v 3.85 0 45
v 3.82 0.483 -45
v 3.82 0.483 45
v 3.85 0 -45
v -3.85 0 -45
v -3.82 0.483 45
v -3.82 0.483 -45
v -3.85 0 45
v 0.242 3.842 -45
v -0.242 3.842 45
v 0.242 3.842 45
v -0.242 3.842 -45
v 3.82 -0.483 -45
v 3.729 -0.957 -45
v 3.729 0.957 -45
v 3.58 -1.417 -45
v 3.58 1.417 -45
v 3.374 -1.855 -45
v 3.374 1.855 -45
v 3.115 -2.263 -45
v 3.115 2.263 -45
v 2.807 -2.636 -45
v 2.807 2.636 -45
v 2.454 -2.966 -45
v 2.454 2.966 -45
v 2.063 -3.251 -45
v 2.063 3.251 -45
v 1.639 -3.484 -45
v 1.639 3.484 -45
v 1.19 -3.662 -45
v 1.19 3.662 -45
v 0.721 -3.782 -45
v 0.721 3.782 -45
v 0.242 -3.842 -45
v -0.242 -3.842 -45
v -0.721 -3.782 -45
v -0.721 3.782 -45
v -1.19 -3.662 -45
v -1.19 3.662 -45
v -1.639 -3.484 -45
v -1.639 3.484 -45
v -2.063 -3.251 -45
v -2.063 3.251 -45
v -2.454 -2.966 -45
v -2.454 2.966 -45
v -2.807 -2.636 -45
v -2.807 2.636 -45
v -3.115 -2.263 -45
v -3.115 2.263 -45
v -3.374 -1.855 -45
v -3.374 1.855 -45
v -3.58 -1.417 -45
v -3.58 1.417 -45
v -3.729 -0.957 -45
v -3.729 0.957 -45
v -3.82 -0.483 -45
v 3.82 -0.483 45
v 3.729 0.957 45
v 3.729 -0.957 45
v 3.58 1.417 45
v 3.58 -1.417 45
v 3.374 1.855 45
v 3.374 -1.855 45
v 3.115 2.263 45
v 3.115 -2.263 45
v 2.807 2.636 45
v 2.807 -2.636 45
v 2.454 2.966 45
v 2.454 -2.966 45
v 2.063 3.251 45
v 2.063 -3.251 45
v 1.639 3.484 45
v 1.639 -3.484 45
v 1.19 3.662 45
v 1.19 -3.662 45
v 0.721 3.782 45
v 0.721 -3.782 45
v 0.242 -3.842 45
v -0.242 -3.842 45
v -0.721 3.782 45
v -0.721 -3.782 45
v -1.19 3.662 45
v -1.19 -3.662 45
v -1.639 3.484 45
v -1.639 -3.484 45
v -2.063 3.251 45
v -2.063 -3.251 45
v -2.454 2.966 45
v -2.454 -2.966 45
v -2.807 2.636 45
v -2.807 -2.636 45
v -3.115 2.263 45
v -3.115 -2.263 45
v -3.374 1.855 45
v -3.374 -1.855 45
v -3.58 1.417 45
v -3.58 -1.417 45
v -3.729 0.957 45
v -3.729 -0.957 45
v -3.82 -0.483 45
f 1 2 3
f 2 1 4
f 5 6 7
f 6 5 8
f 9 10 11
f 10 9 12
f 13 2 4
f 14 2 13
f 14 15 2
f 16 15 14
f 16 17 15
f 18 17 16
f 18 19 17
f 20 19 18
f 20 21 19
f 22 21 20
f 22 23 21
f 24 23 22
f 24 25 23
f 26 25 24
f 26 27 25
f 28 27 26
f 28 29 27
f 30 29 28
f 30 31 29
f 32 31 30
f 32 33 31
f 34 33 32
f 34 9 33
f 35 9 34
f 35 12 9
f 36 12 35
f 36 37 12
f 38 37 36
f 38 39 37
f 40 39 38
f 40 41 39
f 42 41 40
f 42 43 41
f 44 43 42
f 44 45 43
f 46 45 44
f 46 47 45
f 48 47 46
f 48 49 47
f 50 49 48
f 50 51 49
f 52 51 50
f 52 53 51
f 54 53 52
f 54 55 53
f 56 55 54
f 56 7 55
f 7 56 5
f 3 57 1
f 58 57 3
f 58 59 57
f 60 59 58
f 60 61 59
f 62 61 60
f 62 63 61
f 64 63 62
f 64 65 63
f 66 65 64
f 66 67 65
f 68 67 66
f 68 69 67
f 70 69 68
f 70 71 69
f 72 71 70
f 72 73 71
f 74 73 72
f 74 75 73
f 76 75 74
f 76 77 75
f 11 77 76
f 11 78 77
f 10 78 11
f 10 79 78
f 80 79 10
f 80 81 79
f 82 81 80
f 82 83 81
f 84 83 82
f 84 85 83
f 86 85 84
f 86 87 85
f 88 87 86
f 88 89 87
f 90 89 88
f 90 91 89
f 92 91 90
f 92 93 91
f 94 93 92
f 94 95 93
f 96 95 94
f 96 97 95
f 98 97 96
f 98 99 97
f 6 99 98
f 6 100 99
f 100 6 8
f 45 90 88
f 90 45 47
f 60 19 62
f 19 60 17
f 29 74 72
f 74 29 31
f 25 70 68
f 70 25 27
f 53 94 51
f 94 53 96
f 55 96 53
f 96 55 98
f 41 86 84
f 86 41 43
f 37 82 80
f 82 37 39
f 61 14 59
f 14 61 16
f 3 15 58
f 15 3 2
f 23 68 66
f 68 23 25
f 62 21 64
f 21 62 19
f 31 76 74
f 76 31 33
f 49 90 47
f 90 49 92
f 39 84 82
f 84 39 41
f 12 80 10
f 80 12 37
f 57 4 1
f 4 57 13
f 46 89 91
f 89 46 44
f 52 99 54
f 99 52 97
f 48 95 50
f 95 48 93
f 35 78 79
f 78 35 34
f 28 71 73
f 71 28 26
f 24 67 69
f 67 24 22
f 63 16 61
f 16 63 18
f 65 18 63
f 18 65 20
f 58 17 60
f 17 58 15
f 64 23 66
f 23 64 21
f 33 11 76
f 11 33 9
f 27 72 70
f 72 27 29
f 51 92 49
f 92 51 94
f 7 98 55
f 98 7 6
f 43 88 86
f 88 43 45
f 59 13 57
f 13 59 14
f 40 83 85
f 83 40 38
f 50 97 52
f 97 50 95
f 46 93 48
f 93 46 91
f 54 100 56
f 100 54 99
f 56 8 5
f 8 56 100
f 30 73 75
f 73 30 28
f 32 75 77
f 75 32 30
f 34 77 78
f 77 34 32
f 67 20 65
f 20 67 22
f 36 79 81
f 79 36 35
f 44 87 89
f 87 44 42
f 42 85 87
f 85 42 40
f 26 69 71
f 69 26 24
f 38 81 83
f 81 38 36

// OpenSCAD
$fn = 50;


difference() {
	union() {
		translate(v = [0, 0, -45.0000000000]) {
			cylinder(h = 90, r = 3.8500000000);
		}
	}
	union() {
		translate(v = [0, 0, -100.0000000000]) {
			cylinder(h = 200, r = 0);
		}
	}
}
